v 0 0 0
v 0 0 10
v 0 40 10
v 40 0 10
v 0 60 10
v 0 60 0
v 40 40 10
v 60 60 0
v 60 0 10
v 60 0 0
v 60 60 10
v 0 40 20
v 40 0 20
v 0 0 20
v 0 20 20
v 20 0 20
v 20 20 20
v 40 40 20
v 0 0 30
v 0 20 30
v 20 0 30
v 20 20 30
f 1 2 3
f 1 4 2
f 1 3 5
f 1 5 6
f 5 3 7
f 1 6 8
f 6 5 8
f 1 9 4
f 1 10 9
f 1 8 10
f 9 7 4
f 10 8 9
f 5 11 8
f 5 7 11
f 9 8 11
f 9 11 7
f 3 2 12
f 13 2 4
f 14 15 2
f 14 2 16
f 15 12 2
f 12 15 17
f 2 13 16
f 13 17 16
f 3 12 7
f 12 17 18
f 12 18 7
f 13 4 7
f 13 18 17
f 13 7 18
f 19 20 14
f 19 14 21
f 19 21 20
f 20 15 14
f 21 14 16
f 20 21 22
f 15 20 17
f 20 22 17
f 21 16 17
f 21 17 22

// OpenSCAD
union() {
    cube([60,60,10]);
    translate([0,0,10]) cube([40,40,10]);
    translate([0,0,20]) cube([20,20,10]);
}
